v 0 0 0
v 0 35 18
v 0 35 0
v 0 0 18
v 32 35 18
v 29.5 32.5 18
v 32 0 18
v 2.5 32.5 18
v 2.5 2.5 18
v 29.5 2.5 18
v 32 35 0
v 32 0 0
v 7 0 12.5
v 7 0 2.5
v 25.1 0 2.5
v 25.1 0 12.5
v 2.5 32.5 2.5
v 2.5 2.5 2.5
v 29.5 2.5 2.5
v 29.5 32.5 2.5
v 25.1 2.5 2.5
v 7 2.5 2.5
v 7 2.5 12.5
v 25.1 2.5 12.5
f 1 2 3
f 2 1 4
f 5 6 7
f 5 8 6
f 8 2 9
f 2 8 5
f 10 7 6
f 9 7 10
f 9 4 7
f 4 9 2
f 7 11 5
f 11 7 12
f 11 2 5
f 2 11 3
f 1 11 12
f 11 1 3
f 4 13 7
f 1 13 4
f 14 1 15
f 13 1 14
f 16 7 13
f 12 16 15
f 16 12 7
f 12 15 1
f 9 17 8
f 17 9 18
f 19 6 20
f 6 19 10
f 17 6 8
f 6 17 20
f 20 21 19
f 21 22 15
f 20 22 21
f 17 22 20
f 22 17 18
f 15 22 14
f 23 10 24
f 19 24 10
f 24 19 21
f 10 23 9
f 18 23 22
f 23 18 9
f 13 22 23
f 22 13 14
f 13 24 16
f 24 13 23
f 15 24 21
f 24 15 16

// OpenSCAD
//Caixa de Acondicionamento MAX31865
difference(){
cube([32,35,18]);
#translate([2.5,2.5,2.5])cube([27,30,15.5]);
#translate([7,0,2.5])cube([18.10,25,10]);
}
